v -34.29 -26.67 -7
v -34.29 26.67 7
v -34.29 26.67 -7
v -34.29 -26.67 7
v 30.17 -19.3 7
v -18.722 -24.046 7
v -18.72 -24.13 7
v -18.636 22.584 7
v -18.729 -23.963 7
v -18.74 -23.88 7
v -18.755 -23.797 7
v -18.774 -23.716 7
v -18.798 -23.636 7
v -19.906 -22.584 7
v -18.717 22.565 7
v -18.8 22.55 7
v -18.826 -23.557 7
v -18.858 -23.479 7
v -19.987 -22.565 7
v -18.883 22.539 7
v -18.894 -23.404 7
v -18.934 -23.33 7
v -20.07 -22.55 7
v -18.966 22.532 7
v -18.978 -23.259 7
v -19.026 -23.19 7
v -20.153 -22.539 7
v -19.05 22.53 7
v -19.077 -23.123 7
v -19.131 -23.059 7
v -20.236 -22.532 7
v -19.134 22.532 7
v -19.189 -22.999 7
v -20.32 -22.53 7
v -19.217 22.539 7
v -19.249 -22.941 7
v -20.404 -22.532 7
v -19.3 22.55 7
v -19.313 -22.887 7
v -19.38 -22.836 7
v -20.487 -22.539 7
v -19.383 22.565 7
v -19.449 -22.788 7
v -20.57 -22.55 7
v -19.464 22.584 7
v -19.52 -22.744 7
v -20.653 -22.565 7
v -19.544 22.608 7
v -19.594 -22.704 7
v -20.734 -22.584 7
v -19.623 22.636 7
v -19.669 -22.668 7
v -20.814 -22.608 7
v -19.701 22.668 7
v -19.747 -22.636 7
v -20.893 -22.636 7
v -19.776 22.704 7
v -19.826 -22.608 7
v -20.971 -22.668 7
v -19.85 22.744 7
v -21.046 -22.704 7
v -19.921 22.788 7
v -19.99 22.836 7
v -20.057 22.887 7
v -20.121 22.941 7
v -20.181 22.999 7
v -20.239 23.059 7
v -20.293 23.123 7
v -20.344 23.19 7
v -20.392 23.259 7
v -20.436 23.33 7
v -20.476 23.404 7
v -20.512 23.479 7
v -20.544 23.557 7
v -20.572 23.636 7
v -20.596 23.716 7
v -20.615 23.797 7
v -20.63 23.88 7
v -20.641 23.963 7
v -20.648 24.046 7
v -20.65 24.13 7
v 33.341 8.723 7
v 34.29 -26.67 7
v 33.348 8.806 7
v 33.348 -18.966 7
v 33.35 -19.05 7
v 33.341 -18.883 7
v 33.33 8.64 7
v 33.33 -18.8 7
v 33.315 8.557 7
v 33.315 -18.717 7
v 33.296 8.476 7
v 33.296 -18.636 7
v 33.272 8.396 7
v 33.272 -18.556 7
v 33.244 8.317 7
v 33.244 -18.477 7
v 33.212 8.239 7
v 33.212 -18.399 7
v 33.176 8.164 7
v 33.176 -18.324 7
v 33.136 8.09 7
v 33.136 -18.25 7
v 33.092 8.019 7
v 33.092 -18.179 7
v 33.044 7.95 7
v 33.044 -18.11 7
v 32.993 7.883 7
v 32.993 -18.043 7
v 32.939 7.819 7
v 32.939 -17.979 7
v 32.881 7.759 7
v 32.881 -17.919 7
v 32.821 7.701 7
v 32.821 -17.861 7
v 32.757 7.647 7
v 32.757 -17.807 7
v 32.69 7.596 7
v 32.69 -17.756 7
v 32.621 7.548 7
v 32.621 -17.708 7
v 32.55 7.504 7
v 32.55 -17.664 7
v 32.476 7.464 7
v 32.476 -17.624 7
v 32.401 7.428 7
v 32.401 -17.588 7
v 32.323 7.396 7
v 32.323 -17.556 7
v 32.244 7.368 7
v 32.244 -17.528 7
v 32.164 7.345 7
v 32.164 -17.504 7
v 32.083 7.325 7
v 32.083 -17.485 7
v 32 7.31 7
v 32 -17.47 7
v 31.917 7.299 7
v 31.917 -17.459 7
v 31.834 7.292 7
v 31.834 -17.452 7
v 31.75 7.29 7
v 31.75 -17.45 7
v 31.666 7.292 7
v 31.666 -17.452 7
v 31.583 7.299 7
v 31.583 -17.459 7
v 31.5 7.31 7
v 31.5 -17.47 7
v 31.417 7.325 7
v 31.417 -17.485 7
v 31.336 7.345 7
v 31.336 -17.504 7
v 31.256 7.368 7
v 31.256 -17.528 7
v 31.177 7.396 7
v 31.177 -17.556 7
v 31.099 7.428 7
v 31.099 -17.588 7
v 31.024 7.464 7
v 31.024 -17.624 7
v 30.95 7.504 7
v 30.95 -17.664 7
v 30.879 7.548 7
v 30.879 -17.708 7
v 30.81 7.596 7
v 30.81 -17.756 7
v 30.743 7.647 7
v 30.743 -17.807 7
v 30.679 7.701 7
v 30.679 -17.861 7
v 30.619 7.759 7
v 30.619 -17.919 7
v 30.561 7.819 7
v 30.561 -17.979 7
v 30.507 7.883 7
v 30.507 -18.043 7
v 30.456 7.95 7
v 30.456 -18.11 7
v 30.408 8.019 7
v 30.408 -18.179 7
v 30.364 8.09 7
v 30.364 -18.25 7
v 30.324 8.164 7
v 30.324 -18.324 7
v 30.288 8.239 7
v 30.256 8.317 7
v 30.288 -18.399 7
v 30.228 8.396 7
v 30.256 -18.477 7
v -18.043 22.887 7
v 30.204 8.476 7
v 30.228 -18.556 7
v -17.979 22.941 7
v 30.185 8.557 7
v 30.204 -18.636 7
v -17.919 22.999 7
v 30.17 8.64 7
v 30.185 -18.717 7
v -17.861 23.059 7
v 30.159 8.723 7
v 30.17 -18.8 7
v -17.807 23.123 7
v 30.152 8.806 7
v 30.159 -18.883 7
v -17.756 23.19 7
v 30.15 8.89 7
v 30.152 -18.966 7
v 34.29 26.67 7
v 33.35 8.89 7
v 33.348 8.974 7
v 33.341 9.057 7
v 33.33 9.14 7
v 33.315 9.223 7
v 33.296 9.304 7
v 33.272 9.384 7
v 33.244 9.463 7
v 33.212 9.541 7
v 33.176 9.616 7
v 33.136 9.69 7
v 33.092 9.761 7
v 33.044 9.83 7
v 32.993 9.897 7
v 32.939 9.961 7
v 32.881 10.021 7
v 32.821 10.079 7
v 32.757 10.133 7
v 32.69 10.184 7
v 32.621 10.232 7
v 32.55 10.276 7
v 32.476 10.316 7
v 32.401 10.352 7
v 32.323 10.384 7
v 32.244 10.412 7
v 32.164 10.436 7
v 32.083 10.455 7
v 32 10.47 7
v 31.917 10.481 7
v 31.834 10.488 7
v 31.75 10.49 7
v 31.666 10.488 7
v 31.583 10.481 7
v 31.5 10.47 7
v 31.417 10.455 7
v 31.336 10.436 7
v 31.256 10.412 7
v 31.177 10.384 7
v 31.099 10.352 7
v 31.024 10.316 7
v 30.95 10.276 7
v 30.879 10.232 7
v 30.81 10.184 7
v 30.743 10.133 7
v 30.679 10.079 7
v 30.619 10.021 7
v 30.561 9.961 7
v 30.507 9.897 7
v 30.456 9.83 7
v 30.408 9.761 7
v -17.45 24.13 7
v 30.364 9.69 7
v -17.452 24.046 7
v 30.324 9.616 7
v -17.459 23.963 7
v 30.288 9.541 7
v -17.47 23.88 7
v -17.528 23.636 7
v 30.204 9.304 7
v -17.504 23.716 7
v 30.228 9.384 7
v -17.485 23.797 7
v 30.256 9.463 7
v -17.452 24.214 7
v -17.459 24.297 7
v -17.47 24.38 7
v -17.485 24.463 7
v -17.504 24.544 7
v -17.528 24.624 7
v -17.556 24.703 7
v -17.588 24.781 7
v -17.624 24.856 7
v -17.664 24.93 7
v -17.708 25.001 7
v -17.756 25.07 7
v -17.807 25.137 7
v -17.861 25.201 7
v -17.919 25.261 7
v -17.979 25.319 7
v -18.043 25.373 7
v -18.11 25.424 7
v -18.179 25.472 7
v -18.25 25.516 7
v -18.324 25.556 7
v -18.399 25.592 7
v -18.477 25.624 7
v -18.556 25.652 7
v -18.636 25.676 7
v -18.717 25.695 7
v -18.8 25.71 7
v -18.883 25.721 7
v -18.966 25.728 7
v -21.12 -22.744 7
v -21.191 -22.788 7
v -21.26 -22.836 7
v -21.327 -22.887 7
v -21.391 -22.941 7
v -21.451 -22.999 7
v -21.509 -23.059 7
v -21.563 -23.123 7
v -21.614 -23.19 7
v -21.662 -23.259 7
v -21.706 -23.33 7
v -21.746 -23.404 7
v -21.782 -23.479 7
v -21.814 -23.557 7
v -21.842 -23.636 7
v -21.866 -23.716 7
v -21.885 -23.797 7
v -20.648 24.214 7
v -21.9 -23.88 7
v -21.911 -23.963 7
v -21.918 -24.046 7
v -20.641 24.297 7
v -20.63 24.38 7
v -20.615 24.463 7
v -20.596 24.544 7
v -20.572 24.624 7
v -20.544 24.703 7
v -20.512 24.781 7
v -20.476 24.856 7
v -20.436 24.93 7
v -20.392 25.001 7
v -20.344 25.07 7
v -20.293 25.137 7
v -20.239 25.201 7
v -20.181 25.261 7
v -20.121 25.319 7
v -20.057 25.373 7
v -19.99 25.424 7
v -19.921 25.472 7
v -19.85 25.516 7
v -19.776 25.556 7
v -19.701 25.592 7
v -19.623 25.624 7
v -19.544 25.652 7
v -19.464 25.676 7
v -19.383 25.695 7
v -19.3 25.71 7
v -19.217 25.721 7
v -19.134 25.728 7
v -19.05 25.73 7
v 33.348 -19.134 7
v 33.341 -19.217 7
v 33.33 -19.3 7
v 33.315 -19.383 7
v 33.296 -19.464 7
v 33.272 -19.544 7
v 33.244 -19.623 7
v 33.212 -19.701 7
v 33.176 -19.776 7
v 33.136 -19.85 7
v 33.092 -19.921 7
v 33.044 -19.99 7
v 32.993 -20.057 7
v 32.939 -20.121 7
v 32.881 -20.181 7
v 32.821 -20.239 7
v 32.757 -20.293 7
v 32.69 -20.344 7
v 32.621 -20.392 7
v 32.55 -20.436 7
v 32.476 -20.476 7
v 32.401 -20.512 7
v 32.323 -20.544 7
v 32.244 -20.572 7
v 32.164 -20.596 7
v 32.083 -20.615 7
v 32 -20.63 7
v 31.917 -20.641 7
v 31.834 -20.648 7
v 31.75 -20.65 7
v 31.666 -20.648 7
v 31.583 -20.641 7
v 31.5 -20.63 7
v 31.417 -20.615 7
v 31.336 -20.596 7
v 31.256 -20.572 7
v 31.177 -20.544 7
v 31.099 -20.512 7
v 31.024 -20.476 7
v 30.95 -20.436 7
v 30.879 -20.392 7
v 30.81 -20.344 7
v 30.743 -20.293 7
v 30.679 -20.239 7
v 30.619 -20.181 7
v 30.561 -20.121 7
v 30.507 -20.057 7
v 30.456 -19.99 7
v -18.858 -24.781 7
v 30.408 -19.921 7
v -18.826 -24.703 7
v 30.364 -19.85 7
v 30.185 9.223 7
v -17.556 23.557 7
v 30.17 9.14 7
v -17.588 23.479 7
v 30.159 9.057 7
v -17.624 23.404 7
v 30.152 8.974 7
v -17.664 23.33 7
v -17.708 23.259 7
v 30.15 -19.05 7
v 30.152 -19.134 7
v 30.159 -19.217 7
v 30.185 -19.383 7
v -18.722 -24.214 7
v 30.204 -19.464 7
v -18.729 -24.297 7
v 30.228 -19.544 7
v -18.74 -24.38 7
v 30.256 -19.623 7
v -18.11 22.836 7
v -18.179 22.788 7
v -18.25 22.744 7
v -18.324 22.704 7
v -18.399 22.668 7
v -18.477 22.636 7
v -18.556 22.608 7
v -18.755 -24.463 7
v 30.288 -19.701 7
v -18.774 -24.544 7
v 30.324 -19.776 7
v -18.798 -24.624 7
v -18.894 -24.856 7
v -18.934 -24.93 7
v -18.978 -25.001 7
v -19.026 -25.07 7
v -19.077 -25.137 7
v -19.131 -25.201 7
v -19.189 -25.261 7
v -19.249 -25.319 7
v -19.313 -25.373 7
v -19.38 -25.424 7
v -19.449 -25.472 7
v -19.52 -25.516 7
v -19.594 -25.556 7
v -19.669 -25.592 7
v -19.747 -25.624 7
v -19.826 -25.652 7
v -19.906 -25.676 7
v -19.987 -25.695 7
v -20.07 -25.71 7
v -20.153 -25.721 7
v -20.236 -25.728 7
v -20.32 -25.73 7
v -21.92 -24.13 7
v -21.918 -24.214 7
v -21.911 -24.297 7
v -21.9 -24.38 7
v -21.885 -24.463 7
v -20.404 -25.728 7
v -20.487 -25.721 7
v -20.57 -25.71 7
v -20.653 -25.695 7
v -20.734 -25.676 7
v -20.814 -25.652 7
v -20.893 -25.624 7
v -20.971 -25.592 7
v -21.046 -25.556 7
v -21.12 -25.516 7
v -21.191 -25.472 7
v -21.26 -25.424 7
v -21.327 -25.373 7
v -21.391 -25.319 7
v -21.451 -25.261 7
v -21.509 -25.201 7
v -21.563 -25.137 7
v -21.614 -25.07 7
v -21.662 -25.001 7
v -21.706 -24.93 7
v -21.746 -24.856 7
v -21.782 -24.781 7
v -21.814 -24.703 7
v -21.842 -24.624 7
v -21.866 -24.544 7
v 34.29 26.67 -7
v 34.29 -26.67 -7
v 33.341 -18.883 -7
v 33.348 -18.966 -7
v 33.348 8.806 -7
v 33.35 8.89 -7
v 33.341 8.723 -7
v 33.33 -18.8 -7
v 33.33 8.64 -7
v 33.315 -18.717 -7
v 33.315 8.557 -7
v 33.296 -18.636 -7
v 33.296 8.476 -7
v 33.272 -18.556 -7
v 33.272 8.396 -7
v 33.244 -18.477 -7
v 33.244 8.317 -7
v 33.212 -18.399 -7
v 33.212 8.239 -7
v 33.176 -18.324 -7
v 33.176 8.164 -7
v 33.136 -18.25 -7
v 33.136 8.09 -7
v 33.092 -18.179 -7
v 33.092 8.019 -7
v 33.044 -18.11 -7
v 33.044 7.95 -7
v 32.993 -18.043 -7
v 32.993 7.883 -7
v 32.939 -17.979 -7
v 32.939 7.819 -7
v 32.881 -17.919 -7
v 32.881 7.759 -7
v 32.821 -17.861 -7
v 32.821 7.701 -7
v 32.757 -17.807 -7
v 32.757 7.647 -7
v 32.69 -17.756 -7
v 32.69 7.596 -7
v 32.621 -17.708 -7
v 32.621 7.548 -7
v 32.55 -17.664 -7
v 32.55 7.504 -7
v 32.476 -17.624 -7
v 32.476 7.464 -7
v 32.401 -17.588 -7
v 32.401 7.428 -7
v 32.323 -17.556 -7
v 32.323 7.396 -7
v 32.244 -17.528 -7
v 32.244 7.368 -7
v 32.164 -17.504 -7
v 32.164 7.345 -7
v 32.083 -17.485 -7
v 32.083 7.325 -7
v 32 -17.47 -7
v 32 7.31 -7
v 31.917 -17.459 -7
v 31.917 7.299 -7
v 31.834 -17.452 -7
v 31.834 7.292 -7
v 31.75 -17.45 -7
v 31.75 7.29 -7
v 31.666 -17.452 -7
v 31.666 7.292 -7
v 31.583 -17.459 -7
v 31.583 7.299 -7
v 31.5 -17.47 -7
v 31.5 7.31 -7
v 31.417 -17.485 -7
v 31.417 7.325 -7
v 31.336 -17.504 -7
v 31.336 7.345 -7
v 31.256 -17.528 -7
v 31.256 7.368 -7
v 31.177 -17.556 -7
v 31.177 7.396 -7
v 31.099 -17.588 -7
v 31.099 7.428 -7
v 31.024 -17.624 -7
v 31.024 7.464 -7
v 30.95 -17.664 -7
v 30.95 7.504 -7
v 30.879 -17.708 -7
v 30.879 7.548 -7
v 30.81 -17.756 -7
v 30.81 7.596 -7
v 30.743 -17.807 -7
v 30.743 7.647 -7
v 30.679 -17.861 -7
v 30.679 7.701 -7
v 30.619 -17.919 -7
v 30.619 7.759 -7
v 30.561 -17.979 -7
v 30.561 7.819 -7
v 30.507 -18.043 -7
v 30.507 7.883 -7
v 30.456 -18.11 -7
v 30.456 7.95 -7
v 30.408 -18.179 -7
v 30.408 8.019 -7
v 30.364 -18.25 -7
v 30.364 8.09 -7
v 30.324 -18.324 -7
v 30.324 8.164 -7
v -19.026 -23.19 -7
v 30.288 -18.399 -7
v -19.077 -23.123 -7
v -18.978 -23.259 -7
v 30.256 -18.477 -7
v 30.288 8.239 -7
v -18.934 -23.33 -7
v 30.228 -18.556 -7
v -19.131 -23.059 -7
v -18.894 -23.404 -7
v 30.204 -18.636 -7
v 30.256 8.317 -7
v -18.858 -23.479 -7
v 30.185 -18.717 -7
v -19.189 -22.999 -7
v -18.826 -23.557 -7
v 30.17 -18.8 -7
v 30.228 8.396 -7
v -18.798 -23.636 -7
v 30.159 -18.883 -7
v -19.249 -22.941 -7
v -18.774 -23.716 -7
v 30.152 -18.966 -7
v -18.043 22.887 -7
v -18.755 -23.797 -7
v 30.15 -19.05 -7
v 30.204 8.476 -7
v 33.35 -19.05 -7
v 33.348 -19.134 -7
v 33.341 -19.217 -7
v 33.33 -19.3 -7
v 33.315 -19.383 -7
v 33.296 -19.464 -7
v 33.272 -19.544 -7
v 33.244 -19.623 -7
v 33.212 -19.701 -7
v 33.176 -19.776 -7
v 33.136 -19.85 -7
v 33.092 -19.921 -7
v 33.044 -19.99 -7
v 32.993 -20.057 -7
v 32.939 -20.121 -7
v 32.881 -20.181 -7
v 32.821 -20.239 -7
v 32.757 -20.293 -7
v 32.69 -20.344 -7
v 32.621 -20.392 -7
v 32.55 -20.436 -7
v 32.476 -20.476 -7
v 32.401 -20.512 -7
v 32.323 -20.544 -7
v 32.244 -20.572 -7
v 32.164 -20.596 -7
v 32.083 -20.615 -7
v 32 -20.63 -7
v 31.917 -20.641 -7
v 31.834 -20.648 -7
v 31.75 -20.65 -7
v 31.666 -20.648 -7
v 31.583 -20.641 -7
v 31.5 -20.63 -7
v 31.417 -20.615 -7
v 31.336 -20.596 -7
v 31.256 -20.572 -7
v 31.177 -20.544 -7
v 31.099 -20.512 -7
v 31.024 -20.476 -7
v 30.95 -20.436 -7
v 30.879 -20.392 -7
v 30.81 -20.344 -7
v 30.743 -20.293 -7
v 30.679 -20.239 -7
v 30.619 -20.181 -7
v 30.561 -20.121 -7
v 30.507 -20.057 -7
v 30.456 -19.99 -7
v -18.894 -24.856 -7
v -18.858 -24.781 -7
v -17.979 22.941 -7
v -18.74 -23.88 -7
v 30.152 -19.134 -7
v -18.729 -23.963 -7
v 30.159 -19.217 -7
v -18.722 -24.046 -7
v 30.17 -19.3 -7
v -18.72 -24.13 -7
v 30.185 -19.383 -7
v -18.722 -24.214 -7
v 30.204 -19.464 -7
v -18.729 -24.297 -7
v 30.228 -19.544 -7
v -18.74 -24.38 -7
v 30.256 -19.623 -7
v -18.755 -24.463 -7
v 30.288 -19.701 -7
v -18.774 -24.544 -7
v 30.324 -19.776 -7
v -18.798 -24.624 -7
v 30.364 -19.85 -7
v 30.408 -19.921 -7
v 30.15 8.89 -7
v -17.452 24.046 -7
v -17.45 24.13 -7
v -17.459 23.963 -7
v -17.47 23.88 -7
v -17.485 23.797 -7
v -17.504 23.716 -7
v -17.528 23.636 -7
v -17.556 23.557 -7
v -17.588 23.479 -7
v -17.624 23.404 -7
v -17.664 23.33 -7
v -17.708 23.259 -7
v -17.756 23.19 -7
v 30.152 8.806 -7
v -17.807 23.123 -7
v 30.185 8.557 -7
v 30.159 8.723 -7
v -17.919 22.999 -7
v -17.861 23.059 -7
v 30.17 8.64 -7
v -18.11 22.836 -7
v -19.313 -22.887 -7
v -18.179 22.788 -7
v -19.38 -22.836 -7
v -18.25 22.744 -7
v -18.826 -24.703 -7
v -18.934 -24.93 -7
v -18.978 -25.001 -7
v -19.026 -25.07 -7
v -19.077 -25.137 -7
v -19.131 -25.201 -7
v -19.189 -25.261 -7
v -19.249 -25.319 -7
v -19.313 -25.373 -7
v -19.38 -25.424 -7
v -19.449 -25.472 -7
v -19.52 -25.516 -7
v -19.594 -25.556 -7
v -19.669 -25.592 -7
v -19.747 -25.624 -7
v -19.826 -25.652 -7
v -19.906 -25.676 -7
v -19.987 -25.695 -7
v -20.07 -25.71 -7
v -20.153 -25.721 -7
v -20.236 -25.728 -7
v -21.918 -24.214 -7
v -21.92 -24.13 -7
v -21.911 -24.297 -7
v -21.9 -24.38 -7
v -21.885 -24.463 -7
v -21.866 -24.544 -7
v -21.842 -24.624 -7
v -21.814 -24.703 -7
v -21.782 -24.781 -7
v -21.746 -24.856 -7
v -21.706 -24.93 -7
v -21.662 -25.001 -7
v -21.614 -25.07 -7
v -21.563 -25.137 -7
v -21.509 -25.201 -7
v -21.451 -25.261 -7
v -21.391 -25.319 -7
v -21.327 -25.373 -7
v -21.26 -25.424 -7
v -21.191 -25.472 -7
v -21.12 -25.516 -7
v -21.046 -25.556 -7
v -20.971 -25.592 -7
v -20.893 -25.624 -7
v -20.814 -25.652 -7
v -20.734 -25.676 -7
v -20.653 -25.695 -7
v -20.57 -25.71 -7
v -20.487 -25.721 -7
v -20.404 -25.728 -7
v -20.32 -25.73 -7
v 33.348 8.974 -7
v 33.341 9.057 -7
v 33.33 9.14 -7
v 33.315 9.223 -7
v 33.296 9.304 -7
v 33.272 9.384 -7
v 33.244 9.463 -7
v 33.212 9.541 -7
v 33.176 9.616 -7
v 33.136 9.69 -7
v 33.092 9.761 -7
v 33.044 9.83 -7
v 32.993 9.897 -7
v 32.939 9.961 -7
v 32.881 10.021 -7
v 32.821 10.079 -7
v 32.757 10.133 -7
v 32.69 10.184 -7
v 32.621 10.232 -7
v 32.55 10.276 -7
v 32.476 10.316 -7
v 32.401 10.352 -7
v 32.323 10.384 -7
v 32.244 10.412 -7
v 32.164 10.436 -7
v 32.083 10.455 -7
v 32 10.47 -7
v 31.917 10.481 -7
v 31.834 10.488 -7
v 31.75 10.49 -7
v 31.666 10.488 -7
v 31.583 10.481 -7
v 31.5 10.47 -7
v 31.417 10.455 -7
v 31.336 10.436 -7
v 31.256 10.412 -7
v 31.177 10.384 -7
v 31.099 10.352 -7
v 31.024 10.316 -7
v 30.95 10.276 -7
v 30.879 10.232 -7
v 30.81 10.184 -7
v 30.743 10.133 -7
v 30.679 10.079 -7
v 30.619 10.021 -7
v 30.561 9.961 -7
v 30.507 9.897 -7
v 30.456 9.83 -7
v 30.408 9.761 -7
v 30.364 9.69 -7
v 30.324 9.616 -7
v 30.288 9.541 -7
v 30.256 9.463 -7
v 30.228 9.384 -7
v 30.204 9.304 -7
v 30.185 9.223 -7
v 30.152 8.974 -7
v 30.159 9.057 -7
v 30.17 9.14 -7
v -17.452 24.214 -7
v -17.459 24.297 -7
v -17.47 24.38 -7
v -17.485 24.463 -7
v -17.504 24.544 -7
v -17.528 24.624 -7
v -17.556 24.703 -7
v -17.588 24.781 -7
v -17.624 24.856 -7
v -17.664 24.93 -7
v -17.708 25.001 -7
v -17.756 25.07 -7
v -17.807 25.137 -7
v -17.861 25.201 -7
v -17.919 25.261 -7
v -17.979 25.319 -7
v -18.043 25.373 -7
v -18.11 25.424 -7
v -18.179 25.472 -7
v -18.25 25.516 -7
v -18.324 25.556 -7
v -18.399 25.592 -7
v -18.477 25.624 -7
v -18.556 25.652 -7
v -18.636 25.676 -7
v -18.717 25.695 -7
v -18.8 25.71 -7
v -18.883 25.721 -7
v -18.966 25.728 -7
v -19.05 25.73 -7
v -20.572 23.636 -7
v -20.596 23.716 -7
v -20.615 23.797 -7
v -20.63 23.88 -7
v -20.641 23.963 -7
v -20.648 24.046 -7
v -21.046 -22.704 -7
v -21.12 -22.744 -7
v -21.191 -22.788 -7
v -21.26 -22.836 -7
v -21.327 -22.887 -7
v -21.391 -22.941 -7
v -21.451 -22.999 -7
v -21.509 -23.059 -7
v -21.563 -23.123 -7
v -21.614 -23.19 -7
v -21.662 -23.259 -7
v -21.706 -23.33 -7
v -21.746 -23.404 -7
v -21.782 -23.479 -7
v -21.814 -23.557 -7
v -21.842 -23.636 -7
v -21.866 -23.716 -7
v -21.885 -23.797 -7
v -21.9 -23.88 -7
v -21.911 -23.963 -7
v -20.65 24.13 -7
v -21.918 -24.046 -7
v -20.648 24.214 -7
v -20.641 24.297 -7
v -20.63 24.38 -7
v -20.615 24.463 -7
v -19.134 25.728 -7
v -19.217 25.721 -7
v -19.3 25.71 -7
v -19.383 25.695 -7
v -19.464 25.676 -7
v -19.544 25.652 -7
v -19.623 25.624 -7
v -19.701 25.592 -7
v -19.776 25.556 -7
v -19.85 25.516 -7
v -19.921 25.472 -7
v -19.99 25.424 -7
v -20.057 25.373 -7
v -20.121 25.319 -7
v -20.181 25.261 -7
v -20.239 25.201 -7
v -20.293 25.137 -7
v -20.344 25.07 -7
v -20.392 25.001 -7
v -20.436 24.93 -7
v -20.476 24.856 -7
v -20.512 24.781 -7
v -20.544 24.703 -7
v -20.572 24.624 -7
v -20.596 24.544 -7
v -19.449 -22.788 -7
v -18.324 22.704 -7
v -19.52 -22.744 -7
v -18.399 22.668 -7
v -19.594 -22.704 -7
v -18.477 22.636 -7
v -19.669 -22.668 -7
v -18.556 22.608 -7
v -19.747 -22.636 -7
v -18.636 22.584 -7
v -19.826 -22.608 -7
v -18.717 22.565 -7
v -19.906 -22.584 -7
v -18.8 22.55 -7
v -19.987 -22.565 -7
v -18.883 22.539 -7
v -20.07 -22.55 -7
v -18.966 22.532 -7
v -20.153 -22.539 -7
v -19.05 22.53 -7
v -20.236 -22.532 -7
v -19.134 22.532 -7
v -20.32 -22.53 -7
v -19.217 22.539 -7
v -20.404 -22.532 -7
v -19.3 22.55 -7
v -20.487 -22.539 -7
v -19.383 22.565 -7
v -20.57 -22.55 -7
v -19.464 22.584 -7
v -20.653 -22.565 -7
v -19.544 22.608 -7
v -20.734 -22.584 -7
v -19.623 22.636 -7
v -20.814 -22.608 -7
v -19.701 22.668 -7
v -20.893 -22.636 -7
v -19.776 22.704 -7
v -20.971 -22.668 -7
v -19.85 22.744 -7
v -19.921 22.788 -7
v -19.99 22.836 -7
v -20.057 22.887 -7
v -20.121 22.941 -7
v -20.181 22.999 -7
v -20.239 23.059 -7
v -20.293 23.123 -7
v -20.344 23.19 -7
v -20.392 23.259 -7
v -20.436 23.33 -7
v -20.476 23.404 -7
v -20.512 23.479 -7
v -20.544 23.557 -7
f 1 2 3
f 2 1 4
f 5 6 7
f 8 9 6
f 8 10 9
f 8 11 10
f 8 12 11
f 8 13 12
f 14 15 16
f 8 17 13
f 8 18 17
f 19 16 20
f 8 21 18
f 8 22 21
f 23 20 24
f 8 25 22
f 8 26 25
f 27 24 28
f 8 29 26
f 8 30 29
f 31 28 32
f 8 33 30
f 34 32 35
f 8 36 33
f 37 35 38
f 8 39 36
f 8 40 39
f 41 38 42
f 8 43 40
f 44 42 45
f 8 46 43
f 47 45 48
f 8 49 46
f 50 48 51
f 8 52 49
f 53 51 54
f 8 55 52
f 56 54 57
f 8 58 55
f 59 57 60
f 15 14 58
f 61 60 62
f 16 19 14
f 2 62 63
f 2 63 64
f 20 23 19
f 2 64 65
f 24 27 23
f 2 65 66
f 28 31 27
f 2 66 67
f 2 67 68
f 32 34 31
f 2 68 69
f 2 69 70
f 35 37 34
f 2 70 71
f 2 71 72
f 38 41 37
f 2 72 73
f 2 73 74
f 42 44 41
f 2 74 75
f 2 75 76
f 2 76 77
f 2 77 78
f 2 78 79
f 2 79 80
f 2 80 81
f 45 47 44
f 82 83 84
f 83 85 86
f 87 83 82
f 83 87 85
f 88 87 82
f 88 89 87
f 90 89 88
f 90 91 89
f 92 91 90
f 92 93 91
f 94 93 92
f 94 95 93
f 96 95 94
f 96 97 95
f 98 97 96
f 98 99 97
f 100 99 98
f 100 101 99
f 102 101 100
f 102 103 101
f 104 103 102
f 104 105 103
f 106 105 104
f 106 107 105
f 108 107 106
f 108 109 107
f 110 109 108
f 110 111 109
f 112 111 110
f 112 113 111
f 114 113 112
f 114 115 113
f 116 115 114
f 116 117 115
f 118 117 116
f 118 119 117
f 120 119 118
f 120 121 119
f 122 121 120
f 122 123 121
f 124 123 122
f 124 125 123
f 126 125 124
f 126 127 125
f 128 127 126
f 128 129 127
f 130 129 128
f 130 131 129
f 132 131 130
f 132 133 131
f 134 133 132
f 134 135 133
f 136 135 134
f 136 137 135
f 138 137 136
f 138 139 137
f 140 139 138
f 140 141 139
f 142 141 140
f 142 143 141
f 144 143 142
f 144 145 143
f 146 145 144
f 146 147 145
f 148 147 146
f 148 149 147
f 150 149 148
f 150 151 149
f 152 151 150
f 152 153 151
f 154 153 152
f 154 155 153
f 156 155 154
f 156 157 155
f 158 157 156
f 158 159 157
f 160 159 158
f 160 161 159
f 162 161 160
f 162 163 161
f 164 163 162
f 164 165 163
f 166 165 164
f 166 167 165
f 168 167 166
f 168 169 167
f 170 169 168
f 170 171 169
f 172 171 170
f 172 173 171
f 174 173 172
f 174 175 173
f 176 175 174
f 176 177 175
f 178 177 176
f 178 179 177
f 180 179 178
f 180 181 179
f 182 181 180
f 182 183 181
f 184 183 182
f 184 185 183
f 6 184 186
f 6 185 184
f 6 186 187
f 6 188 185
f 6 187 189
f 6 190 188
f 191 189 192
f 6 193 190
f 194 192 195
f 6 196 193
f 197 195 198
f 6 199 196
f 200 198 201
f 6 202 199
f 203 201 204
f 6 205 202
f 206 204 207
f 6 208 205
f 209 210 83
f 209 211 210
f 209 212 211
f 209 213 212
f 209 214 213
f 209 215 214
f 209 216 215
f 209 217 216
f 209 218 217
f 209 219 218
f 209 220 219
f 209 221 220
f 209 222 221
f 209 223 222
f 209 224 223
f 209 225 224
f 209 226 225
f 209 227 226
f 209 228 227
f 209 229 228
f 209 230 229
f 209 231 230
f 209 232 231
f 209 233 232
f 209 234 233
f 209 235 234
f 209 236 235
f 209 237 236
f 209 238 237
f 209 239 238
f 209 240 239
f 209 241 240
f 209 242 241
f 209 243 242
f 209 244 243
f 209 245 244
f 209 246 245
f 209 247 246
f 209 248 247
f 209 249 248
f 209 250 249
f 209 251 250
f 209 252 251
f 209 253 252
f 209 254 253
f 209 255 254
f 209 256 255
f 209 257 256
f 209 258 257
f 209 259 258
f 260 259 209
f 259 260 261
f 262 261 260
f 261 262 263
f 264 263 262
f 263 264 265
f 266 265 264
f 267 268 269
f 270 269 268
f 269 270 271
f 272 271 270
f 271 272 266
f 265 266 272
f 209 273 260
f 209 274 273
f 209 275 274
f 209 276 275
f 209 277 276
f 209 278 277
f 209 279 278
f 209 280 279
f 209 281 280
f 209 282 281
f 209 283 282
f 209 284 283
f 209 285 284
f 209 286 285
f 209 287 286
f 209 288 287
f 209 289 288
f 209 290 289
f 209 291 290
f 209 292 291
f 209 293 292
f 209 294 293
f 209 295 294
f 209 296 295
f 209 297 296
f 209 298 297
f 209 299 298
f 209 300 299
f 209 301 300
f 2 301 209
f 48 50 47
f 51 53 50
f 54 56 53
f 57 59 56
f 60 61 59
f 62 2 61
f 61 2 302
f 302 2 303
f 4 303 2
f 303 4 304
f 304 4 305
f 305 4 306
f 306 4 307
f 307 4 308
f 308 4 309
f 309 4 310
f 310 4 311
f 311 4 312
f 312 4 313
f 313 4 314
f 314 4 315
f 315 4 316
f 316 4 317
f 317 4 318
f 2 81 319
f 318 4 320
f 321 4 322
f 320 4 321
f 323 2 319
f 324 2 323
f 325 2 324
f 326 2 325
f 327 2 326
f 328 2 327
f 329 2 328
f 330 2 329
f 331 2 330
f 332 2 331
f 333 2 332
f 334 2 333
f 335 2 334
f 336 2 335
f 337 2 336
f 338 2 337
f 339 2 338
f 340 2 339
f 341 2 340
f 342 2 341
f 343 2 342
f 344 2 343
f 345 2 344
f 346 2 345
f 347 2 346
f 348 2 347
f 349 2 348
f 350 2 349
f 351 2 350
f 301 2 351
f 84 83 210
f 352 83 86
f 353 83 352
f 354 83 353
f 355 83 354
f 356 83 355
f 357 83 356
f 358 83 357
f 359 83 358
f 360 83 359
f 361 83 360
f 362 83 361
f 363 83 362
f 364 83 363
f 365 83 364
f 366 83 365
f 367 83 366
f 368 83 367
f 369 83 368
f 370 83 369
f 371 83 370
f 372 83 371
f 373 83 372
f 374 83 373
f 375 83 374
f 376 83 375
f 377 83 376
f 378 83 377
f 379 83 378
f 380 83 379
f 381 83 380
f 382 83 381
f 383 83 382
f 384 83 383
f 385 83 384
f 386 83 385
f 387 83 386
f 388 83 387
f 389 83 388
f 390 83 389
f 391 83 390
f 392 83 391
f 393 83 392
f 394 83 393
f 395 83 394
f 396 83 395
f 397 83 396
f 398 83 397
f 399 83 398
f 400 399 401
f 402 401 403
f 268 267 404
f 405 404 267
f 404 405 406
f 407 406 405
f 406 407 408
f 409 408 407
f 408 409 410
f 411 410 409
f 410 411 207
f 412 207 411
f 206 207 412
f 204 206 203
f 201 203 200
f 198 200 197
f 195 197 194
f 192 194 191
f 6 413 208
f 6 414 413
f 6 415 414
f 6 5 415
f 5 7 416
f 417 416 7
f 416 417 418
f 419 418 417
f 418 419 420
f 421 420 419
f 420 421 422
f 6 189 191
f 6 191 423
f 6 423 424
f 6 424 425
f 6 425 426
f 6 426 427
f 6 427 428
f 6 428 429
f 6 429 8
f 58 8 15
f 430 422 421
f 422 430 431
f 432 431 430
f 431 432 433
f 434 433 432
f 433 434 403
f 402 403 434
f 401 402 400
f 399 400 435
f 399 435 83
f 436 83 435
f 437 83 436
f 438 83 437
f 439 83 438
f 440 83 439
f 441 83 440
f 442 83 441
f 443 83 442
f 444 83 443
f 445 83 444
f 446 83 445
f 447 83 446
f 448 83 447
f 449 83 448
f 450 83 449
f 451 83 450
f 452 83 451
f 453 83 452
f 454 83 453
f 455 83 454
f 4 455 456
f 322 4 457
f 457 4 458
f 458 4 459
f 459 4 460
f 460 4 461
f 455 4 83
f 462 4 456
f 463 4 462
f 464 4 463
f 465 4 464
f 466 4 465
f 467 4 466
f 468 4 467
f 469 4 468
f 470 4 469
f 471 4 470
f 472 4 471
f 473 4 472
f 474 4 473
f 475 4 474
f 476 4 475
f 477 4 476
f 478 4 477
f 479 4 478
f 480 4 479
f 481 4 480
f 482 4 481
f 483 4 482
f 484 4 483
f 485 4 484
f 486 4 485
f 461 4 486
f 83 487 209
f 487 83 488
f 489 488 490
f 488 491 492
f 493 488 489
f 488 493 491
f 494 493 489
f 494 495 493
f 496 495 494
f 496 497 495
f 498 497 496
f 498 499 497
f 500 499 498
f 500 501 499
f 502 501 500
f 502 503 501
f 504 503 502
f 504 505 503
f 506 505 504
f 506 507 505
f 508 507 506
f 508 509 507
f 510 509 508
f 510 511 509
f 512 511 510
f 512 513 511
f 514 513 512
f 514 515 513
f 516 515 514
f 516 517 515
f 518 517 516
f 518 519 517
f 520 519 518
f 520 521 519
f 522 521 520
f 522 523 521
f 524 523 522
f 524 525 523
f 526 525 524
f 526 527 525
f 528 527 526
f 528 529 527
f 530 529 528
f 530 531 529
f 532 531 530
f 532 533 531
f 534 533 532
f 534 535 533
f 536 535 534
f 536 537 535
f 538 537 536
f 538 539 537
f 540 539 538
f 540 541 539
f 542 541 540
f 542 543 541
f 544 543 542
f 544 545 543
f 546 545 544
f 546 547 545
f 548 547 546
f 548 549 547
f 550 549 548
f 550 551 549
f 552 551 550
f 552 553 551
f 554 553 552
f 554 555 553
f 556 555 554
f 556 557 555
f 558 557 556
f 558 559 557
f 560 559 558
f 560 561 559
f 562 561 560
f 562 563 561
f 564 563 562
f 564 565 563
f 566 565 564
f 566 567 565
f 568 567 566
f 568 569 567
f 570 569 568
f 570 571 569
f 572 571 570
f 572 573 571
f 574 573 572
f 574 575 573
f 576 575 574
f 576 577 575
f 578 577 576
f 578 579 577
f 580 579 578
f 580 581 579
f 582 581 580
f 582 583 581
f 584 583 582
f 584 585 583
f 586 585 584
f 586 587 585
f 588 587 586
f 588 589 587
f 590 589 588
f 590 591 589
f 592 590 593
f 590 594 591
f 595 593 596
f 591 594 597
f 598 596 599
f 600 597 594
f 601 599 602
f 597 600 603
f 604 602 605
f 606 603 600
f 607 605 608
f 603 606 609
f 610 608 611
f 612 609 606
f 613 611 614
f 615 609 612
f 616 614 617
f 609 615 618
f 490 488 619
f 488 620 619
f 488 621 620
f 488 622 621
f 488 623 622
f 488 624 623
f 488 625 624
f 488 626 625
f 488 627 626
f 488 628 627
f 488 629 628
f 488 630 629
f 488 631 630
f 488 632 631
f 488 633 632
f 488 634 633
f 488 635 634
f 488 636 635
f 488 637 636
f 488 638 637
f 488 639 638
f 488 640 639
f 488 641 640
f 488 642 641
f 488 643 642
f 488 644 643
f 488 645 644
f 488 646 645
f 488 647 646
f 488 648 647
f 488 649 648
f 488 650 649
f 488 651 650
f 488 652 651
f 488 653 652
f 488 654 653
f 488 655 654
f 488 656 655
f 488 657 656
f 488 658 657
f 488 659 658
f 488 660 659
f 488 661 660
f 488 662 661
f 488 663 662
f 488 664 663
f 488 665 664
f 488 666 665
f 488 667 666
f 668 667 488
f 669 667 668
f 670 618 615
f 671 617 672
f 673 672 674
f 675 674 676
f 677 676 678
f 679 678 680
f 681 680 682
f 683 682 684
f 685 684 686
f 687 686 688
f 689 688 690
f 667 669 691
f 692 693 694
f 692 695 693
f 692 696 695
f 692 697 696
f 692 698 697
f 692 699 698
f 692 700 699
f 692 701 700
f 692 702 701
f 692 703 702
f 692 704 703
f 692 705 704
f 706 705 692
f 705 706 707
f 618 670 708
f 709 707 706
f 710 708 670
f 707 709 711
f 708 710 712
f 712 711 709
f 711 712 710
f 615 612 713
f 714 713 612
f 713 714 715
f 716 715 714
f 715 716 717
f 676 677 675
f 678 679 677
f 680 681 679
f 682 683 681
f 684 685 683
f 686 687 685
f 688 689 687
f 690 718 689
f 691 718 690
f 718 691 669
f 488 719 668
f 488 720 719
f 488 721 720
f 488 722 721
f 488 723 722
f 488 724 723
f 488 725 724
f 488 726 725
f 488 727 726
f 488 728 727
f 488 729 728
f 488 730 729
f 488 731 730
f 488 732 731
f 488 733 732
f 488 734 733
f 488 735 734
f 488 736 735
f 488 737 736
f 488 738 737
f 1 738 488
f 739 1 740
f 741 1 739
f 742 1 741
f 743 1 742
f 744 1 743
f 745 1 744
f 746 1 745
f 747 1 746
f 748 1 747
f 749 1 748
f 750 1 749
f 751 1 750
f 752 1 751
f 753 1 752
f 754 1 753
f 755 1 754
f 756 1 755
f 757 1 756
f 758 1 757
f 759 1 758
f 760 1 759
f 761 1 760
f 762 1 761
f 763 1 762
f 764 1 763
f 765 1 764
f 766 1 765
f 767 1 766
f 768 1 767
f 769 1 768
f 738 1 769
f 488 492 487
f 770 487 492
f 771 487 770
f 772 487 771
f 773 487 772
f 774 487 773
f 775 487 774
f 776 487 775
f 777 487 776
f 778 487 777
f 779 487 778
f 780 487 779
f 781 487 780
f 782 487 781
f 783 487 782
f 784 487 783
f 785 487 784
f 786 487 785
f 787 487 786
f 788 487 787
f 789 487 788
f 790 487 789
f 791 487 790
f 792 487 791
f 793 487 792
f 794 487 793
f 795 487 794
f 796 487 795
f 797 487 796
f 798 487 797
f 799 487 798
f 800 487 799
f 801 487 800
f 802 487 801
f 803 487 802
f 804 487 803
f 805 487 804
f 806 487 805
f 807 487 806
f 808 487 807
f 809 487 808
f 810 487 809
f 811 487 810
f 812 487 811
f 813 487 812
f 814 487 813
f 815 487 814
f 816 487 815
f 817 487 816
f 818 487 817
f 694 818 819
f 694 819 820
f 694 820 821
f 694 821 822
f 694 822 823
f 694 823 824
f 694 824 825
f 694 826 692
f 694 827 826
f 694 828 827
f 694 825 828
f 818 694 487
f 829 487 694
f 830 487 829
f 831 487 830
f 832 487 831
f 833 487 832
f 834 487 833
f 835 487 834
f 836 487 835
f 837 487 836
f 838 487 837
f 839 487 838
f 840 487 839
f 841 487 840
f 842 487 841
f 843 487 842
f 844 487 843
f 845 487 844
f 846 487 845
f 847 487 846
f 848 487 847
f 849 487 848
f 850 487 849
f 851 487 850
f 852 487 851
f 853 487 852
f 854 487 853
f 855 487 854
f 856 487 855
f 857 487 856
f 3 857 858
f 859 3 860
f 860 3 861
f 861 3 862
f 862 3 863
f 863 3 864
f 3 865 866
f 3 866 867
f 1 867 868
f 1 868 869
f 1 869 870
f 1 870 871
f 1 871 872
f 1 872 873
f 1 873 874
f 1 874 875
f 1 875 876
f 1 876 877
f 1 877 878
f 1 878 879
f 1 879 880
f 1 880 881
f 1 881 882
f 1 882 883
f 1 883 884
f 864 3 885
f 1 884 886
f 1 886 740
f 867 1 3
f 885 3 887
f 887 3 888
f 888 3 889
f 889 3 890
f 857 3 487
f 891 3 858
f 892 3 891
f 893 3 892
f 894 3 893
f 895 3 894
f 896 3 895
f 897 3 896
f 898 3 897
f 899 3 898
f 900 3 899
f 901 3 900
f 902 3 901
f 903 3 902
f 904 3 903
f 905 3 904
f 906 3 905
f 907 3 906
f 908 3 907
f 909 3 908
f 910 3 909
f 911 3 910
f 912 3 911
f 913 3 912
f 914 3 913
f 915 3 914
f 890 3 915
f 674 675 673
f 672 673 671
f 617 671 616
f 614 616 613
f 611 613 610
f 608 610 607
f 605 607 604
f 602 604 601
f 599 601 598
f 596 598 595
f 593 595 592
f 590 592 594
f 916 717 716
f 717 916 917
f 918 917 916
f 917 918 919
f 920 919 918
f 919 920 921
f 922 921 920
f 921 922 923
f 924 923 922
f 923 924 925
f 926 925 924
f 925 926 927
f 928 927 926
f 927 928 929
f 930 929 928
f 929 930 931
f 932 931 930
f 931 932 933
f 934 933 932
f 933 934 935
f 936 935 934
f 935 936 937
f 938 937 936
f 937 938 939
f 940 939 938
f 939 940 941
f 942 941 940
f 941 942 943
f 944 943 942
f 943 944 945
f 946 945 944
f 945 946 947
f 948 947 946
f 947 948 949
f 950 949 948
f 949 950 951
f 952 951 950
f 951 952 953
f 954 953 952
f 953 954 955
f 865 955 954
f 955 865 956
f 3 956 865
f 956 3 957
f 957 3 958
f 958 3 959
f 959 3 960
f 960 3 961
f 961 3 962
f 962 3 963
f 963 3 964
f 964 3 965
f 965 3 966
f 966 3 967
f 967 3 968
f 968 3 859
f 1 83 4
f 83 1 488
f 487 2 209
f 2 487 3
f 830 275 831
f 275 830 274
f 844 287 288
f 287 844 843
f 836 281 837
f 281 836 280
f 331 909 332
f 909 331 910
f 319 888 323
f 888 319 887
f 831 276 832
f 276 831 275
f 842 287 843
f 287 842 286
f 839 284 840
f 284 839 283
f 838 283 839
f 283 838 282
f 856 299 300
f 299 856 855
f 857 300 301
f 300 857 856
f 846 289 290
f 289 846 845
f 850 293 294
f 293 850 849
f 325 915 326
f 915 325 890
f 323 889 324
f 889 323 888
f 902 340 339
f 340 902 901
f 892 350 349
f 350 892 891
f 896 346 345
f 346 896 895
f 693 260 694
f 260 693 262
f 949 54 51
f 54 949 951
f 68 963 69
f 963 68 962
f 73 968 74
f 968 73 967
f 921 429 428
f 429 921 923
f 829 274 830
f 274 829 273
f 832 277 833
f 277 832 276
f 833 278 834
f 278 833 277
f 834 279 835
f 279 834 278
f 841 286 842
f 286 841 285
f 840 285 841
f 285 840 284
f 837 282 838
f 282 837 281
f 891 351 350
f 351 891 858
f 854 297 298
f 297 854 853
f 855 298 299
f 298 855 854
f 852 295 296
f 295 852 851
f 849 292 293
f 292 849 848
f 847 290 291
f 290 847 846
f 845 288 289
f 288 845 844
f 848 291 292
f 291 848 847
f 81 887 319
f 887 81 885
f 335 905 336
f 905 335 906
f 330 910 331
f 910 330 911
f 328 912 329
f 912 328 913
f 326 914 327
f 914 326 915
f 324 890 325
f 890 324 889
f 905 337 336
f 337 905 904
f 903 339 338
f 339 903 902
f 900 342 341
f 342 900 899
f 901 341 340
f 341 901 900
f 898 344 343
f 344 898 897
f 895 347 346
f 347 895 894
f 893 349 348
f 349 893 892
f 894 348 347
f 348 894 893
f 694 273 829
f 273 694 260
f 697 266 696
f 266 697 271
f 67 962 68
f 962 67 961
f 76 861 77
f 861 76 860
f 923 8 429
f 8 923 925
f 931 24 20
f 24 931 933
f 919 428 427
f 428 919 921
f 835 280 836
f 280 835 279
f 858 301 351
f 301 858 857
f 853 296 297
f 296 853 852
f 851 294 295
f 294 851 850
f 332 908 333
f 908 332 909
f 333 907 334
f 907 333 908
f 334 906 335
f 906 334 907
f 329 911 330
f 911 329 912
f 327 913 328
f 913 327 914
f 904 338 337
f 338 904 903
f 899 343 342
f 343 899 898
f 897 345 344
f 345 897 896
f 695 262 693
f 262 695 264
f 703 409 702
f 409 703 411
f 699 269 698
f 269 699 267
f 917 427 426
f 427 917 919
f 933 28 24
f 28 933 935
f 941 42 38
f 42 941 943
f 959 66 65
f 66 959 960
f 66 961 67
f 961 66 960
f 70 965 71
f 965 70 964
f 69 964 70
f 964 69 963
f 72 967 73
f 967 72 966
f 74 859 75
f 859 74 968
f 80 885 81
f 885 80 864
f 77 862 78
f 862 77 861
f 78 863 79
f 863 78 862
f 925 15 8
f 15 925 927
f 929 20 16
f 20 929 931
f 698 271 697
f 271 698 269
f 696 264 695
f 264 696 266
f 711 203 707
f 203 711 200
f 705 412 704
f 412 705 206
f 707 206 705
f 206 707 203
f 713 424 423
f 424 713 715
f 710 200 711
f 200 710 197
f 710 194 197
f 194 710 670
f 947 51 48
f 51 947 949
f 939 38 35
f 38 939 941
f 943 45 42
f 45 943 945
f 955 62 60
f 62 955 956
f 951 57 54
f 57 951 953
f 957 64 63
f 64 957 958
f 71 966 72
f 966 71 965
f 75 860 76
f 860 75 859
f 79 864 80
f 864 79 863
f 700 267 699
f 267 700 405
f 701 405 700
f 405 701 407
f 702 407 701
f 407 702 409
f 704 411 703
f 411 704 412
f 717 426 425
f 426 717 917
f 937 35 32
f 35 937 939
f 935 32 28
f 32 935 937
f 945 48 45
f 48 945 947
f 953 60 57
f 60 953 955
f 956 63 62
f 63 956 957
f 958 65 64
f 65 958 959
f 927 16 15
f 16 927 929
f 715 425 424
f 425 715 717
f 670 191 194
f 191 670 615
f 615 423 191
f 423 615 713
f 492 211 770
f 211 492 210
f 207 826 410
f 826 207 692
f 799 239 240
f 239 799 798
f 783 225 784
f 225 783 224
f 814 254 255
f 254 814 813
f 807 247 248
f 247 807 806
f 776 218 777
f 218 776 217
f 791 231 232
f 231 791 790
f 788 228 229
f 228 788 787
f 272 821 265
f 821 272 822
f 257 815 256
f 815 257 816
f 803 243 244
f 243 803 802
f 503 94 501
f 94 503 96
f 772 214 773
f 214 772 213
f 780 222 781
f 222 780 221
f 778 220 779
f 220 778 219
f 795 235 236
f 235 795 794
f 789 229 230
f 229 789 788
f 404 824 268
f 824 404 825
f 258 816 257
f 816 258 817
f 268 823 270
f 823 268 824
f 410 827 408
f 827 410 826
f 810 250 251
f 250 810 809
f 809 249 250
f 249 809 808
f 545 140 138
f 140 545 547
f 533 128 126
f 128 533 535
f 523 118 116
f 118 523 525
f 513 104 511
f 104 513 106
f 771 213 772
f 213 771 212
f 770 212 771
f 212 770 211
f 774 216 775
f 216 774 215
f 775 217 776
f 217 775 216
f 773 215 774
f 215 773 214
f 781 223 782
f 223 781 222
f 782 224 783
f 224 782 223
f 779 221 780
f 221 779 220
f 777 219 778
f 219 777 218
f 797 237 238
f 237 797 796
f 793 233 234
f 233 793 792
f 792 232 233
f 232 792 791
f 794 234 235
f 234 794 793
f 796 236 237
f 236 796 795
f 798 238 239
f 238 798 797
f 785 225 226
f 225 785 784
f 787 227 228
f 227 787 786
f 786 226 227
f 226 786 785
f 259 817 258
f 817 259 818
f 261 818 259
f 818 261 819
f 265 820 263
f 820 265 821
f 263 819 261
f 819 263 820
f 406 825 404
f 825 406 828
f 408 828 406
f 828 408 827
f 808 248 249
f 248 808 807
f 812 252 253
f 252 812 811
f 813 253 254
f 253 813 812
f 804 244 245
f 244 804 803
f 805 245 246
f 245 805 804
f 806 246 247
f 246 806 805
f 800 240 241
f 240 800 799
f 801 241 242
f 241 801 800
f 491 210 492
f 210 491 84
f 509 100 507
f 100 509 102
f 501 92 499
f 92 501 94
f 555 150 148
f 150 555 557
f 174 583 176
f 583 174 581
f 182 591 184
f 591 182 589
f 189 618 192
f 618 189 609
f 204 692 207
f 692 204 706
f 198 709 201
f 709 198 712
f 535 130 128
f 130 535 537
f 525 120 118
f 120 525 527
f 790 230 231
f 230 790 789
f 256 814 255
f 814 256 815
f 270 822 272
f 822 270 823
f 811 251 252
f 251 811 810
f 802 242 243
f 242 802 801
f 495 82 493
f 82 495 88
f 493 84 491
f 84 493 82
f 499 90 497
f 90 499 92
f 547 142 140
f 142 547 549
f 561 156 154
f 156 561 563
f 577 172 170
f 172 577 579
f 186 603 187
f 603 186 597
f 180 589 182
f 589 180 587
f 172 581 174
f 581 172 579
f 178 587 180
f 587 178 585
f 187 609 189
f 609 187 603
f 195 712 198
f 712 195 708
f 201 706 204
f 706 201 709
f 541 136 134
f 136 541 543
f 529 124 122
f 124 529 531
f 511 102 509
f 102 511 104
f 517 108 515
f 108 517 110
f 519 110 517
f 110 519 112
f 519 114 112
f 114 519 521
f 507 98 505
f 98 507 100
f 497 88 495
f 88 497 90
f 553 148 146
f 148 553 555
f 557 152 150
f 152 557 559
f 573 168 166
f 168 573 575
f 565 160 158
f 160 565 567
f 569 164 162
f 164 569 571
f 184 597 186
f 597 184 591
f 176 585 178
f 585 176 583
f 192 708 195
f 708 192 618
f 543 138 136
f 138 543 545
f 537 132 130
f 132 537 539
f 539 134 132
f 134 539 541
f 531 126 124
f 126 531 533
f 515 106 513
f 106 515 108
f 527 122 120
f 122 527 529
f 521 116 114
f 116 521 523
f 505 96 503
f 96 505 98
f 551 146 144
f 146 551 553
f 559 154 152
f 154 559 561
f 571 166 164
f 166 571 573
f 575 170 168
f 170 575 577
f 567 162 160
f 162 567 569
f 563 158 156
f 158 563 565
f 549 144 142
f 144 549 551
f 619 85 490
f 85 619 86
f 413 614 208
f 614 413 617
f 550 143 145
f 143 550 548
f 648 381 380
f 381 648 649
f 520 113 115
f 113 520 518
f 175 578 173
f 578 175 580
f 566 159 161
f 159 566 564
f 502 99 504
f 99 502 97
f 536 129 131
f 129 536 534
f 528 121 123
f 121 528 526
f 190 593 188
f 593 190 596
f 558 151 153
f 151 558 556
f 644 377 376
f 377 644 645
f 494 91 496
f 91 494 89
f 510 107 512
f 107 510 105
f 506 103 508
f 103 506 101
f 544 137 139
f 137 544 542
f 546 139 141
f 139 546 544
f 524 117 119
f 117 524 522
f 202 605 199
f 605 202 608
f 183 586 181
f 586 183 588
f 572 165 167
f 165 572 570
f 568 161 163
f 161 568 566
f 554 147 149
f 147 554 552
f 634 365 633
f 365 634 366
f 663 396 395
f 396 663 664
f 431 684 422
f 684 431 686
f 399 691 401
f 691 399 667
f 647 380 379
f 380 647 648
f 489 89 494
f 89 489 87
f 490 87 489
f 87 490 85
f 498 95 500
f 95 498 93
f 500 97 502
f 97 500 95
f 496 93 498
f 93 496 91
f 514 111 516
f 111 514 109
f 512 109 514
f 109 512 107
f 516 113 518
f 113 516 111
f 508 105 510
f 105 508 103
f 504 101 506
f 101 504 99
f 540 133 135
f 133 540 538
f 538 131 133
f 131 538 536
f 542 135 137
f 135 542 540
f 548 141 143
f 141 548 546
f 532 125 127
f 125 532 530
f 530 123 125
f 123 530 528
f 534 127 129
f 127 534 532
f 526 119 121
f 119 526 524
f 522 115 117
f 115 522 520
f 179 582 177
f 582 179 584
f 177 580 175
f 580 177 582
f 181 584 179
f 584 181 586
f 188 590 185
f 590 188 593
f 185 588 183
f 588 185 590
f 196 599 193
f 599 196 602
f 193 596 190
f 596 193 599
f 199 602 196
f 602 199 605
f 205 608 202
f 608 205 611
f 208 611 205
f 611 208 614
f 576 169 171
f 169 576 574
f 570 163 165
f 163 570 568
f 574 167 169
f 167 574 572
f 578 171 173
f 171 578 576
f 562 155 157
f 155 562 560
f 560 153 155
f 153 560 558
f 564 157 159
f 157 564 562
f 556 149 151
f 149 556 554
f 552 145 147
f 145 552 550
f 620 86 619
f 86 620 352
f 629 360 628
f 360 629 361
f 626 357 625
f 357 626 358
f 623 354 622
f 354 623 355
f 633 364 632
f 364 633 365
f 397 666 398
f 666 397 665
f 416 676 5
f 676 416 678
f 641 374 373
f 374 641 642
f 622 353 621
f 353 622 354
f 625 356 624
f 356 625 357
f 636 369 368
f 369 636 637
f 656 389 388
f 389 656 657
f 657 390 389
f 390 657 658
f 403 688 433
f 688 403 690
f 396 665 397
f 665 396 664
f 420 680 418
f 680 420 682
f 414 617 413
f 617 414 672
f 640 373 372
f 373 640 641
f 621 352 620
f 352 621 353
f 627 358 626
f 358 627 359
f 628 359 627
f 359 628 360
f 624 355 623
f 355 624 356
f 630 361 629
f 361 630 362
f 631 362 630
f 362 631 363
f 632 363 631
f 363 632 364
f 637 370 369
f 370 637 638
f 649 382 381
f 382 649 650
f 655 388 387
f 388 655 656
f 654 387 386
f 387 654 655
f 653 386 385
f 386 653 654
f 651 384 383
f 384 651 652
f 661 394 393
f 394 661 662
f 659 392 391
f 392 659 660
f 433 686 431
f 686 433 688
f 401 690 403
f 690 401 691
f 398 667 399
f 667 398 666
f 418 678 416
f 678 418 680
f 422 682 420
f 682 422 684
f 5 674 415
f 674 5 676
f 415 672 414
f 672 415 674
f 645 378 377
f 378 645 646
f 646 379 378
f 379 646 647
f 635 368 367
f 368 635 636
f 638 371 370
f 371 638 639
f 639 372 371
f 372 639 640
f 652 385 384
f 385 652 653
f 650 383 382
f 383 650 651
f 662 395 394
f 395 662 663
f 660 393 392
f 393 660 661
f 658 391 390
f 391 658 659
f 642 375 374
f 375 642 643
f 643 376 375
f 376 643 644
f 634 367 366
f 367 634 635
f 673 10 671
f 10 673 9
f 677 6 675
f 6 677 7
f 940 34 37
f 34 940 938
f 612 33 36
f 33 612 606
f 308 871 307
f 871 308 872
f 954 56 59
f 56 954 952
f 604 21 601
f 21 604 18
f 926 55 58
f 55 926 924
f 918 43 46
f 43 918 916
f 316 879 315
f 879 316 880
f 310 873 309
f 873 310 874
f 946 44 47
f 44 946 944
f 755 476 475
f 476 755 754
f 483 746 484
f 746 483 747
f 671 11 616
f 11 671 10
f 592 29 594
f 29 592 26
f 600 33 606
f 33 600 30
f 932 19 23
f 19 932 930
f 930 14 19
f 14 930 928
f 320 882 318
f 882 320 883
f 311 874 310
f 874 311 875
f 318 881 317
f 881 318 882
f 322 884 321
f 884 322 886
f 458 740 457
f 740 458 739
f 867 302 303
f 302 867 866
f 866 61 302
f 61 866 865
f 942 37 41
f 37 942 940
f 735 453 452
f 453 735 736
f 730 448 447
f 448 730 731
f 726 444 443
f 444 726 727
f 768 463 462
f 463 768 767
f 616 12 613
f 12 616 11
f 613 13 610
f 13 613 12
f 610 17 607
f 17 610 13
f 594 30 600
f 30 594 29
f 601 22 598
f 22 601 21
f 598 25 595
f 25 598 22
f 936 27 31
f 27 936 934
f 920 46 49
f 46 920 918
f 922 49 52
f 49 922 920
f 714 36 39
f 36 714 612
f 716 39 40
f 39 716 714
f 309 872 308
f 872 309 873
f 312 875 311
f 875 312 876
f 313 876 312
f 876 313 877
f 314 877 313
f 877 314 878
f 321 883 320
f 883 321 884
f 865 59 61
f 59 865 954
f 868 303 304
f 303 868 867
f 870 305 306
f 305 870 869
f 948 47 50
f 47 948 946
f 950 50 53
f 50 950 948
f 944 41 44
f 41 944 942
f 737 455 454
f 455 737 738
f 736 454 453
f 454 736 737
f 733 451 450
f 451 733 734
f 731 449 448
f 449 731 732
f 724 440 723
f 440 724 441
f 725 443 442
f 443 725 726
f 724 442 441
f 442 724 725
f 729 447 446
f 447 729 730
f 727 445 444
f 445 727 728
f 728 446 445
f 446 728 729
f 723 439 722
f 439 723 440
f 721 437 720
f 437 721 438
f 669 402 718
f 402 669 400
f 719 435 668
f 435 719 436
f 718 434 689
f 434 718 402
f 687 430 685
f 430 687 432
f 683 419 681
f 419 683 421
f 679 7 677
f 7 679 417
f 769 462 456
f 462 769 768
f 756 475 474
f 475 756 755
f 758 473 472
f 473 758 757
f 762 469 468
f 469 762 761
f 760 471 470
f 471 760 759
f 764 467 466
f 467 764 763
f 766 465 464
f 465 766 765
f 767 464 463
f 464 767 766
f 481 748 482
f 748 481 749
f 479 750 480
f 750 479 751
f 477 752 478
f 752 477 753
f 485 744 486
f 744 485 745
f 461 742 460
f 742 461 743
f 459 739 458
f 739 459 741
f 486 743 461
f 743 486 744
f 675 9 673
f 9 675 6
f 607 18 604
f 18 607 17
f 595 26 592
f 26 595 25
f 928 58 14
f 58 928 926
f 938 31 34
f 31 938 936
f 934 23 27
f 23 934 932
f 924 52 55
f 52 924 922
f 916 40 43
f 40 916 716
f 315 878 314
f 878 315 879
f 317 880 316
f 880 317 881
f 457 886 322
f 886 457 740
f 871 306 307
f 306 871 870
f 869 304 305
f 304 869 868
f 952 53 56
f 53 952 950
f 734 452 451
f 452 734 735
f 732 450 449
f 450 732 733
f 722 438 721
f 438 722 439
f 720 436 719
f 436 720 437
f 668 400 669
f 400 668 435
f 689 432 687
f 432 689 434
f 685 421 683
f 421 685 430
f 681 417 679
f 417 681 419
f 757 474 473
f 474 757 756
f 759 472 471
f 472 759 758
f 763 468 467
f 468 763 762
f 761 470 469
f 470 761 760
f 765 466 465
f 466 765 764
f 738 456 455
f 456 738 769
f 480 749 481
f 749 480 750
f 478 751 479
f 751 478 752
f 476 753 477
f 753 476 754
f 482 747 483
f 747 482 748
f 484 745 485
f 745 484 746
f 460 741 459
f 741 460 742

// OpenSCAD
// file: dim_plt_arduino.scad
//Dimensions de la plateforme Arduino
C=25.4;
//Dimensions de la carte de crédit
L1=85; // soit en pouces 3.3464566
l1=54; // soit en pouces 2.1259842
e=3;
r1=3.2/2;//rayon des trous de fixation
//Entraxes des trous de fixation de la carte Arduino 101
xt1=-0.75*C; xt2=1.25*C; xt3=xt2; xt4=-0.8*C;
yt1=0.95*C; yt2=0.35*C; yt3=-0.75*C; yt4=-0.95*C;
//Dimensions de la carte Arduino
L2=2.7*C;
l2=2.1*C;
ep=14;//cette epaisseur est referencee à l'embase USB
//Dimensions du shield arduino
//les memes
ep_sh=1.5;
// main file
include <dim_plt_arduino.scad>
$fn=120;
difference() {
cube([L2,l2,ep], center=true);
    translate([xt1,yt1,0]) cylinder(1.1*ep,r1,r1,center=true);
    translate([xt2,yt2,0]) cylinder(1.1*ep,r1,r1,center=true);
    translate([xt3,yt3,0]) cylinder(1.1*ep,r1,r1,center=true);
    translate([xt4,yt4,0]) cylinder(1.1*ep,r1,r1,center=true);
}
